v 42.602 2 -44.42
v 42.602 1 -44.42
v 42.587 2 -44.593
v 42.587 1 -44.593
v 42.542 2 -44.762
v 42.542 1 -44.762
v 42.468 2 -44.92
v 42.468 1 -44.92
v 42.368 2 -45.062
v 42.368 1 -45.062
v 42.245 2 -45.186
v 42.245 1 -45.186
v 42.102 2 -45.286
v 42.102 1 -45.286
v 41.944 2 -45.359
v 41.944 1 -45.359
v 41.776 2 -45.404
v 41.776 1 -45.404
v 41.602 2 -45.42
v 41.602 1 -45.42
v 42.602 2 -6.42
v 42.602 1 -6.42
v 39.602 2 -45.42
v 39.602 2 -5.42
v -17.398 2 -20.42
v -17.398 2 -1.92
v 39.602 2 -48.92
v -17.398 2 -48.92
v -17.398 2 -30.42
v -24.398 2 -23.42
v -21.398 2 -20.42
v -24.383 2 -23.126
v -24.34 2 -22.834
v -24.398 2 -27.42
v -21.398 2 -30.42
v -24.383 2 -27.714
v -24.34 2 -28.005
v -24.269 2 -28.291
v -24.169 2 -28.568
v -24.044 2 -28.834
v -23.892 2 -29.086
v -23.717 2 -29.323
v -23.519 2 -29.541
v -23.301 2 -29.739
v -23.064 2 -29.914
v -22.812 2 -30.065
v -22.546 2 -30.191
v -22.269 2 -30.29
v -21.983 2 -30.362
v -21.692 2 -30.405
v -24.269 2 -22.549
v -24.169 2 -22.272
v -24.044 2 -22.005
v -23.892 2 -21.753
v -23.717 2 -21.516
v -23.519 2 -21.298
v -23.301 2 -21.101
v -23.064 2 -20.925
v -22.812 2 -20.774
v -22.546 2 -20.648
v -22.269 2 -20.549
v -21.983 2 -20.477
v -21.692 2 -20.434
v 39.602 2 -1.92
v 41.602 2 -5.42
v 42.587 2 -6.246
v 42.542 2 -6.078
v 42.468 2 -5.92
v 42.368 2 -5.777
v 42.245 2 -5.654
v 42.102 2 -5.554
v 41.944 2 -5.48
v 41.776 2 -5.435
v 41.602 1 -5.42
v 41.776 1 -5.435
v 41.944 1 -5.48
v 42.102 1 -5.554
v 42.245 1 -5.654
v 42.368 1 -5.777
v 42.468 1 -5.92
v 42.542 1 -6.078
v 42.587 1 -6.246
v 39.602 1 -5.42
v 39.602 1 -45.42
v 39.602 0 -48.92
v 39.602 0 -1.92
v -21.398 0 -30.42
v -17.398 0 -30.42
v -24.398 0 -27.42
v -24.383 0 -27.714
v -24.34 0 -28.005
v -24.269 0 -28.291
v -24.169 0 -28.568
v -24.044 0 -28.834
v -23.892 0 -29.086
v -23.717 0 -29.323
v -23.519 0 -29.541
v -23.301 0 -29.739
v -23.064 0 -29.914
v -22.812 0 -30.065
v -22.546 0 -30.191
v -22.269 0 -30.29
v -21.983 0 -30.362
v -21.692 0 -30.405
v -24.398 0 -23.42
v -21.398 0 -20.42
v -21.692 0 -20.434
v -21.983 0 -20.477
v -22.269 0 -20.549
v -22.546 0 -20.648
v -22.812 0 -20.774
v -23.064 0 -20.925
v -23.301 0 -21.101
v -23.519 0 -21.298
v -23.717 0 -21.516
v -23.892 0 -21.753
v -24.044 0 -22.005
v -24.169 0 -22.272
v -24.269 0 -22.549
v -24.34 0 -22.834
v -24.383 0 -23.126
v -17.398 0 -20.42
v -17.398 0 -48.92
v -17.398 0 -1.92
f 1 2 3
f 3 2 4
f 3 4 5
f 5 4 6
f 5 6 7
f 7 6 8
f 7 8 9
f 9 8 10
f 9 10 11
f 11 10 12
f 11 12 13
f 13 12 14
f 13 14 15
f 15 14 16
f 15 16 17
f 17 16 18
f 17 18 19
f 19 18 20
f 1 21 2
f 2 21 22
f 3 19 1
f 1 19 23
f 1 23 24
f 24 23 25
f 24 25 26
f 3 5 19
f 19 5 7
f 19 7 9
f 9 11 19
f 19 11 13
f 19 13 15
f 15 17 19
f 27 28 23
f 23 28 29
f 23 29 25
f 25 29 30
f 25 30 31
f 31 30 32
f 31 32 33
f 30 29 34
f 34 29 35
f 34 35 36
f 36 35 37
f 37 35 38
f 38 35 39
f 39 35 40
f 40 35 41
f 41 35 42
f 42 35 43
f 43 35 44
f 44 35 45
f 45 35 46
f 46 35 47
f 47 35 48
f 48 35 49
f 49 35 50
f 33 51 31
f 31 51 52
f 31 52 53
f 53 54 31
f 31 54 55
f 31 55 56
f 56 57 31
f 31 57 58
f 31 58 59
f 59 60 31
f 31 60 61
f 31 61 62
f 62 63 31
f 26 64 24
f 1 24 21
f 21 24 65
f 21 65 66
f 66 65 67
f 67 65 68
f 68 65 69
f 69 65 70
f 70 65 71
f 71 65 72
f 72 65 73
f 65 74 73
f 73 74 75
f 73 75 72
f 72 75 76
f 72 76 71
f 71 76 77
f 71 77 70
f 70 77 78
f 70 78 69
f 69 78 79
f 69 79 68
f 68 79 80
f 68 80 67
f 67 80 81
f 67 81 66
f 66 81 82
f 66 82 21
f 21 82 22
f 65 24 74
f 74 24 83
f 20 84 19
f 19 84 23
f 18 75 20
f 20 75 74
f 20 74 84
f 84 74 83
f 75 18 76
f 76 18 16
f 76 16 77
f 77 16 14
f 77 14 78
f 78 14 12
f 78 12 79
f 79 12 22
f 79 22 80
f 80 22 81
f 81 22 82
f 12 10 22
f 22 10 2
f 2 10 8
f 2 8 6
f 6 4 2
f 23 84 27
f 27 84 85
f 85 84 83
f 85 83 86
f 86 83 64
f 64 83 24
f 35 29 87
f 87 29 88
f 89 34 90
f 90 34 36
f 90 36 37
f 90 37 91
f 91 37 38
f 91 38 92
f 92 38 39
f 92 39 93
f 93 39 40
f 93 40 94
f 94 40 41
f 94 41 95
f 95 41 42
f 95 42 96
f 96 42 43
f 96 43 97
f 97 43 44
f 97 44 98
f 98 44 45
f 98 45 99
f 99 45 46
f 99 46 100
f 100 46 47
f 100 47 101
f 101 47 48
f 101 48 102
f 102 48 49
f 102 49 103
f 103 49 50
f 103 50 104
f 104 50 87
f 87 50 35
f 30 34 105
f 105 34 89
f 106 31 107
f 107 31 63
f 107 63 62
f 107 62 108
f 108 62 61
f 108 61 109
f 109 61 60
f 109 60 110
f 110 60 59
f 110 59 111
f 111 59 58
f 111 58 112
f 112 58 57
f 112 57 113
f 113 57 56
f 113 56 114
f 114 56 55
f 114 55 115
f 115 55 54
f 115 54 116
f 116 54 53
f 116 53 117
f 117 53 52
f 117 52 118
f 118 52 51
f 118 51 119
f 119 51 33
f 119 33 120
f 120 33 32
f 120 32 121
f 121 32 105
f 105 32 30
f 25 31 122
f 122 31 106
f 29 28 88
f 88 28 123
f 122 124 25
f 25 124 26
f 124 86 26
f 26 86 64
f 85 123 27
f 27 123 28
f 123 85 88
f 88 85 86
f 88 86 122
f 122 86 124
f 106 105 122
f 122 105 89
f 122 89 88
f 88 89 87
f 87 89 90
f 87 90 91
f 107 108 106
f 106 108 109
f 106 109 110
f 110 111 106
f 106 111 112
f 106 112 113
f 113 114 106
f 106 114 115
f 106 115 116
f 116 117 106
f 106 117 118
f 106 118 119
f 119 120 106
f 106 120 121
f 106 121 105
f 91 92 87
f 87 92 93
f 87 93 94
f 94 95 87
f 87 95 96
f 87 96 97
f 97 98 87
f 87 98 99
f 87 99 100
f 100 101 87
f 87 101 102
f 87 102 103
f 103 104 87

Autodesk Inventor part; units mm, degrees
ref_plane "YZ Plane" through (0, 0, 0) normal (1, 0, 0) x (0, 1, 0)
ref_plane "XZ Plane" through (0, 0, 0) normal (0, 1, 0) x (-1, 0, 0)
ref_plane "XY Plane" through (0, 0, 0) normal (0, 0, 1) x (1, 0, 0)
sketch "Sketch1" plane through (0, 0, 0) normal (0, 1, 0) x (-1, 0, 0)
  line L0 (17.3978, -1.9197) -> (-39.6022, -1.9197)
  line L1 (-39.6022, -1.9197) -> (-39.6022, -48.9197)
  line L2 (-39.6022, -48.9197) -> (17.3978, -48.9197)
  line L3 (17.3978, -48.9197) -> (17.3978, -1.9197)
  point P0 (0, 0)
  dimension "d0" = 47
  dimension "d1" = 57
extrude "Extrusion1" add sketch "Sketch1" along normal blind 2
sketch "Sketch2" plane through (0, 2, 0) normal (0, 1, 0) x (1, 0, 0)
  line L0 (-17.3978, 48.9197) -> (-17.3978, 1.9197) projected
  line L1 (-17.3978, 20.4197) -> (-21.3978, 20.4197)
  line L2 (-24.3978, 23.4197) -> (-24.3978, 27.4197)
  line L3 (-21.3978, 30.4197) -> (-17.3978, 30.4197)
  line L4 (-17.3978, 30.4197) -> (-17.3978, 20.4197)
  line L5 (-17.3978, 1.9197) -> (39.6022, 1.9197) projected
  arc A0 (-24.3978, 23.4197) -> (-21.3978, 20.4197) centre (-21.3978, 23.4197) ccw
  arc A1 (-21.3978, 30.4197) -> (-24.3978, 27.4197) centre (-21.3978, 27.4197) ccw
  point P0 (0, 0)
  point P1 (-24.3978, 30.4197)
  point P2 (-24.3978, 20.4197)
  dimension "d4" = 10
  dimension "d5" = 18.5
  dimension "d6" = 7
  dimension "d7" = 3
extrude "Extrusion2" add sketch "Sketch2" against normal blind 2
sketch "Sketch3" plane through (0, 2, 0) normal (0, 1, 0) x (1, 0, 0)
  line L0 (39.6022, 1.9197) -> (39.6022, 48.9197) projected
  line L1 (39.6022, 5.4197) -> (42.6022, 5.4197)
  line L2 (42.6022, 5.4197) -> (42.6022, 45.4197)
  line L3 (42.6022, 45.4197) -> (39.6022, 45.4197)
  line L4 (39.6022, 45.4197) -> (39.6022, 5.4197)
  line L5 (-17.3978, 1.9197) -> (39.6022, 1.9197) projected
  point P0 (0, 0)
  dimension "d10" = 3
  dimension "d11" = 40
  dimension "d12" = 3.5
extrude "Extrusion3" add sketch "Sketch3" against normal blind 1
fillet "Fillet1" radius 1 2 edges at (42.6022, 1.5, -5.4197) (42.6022, 1.5, -45.4197)
properties part number "BatteryDoor"
